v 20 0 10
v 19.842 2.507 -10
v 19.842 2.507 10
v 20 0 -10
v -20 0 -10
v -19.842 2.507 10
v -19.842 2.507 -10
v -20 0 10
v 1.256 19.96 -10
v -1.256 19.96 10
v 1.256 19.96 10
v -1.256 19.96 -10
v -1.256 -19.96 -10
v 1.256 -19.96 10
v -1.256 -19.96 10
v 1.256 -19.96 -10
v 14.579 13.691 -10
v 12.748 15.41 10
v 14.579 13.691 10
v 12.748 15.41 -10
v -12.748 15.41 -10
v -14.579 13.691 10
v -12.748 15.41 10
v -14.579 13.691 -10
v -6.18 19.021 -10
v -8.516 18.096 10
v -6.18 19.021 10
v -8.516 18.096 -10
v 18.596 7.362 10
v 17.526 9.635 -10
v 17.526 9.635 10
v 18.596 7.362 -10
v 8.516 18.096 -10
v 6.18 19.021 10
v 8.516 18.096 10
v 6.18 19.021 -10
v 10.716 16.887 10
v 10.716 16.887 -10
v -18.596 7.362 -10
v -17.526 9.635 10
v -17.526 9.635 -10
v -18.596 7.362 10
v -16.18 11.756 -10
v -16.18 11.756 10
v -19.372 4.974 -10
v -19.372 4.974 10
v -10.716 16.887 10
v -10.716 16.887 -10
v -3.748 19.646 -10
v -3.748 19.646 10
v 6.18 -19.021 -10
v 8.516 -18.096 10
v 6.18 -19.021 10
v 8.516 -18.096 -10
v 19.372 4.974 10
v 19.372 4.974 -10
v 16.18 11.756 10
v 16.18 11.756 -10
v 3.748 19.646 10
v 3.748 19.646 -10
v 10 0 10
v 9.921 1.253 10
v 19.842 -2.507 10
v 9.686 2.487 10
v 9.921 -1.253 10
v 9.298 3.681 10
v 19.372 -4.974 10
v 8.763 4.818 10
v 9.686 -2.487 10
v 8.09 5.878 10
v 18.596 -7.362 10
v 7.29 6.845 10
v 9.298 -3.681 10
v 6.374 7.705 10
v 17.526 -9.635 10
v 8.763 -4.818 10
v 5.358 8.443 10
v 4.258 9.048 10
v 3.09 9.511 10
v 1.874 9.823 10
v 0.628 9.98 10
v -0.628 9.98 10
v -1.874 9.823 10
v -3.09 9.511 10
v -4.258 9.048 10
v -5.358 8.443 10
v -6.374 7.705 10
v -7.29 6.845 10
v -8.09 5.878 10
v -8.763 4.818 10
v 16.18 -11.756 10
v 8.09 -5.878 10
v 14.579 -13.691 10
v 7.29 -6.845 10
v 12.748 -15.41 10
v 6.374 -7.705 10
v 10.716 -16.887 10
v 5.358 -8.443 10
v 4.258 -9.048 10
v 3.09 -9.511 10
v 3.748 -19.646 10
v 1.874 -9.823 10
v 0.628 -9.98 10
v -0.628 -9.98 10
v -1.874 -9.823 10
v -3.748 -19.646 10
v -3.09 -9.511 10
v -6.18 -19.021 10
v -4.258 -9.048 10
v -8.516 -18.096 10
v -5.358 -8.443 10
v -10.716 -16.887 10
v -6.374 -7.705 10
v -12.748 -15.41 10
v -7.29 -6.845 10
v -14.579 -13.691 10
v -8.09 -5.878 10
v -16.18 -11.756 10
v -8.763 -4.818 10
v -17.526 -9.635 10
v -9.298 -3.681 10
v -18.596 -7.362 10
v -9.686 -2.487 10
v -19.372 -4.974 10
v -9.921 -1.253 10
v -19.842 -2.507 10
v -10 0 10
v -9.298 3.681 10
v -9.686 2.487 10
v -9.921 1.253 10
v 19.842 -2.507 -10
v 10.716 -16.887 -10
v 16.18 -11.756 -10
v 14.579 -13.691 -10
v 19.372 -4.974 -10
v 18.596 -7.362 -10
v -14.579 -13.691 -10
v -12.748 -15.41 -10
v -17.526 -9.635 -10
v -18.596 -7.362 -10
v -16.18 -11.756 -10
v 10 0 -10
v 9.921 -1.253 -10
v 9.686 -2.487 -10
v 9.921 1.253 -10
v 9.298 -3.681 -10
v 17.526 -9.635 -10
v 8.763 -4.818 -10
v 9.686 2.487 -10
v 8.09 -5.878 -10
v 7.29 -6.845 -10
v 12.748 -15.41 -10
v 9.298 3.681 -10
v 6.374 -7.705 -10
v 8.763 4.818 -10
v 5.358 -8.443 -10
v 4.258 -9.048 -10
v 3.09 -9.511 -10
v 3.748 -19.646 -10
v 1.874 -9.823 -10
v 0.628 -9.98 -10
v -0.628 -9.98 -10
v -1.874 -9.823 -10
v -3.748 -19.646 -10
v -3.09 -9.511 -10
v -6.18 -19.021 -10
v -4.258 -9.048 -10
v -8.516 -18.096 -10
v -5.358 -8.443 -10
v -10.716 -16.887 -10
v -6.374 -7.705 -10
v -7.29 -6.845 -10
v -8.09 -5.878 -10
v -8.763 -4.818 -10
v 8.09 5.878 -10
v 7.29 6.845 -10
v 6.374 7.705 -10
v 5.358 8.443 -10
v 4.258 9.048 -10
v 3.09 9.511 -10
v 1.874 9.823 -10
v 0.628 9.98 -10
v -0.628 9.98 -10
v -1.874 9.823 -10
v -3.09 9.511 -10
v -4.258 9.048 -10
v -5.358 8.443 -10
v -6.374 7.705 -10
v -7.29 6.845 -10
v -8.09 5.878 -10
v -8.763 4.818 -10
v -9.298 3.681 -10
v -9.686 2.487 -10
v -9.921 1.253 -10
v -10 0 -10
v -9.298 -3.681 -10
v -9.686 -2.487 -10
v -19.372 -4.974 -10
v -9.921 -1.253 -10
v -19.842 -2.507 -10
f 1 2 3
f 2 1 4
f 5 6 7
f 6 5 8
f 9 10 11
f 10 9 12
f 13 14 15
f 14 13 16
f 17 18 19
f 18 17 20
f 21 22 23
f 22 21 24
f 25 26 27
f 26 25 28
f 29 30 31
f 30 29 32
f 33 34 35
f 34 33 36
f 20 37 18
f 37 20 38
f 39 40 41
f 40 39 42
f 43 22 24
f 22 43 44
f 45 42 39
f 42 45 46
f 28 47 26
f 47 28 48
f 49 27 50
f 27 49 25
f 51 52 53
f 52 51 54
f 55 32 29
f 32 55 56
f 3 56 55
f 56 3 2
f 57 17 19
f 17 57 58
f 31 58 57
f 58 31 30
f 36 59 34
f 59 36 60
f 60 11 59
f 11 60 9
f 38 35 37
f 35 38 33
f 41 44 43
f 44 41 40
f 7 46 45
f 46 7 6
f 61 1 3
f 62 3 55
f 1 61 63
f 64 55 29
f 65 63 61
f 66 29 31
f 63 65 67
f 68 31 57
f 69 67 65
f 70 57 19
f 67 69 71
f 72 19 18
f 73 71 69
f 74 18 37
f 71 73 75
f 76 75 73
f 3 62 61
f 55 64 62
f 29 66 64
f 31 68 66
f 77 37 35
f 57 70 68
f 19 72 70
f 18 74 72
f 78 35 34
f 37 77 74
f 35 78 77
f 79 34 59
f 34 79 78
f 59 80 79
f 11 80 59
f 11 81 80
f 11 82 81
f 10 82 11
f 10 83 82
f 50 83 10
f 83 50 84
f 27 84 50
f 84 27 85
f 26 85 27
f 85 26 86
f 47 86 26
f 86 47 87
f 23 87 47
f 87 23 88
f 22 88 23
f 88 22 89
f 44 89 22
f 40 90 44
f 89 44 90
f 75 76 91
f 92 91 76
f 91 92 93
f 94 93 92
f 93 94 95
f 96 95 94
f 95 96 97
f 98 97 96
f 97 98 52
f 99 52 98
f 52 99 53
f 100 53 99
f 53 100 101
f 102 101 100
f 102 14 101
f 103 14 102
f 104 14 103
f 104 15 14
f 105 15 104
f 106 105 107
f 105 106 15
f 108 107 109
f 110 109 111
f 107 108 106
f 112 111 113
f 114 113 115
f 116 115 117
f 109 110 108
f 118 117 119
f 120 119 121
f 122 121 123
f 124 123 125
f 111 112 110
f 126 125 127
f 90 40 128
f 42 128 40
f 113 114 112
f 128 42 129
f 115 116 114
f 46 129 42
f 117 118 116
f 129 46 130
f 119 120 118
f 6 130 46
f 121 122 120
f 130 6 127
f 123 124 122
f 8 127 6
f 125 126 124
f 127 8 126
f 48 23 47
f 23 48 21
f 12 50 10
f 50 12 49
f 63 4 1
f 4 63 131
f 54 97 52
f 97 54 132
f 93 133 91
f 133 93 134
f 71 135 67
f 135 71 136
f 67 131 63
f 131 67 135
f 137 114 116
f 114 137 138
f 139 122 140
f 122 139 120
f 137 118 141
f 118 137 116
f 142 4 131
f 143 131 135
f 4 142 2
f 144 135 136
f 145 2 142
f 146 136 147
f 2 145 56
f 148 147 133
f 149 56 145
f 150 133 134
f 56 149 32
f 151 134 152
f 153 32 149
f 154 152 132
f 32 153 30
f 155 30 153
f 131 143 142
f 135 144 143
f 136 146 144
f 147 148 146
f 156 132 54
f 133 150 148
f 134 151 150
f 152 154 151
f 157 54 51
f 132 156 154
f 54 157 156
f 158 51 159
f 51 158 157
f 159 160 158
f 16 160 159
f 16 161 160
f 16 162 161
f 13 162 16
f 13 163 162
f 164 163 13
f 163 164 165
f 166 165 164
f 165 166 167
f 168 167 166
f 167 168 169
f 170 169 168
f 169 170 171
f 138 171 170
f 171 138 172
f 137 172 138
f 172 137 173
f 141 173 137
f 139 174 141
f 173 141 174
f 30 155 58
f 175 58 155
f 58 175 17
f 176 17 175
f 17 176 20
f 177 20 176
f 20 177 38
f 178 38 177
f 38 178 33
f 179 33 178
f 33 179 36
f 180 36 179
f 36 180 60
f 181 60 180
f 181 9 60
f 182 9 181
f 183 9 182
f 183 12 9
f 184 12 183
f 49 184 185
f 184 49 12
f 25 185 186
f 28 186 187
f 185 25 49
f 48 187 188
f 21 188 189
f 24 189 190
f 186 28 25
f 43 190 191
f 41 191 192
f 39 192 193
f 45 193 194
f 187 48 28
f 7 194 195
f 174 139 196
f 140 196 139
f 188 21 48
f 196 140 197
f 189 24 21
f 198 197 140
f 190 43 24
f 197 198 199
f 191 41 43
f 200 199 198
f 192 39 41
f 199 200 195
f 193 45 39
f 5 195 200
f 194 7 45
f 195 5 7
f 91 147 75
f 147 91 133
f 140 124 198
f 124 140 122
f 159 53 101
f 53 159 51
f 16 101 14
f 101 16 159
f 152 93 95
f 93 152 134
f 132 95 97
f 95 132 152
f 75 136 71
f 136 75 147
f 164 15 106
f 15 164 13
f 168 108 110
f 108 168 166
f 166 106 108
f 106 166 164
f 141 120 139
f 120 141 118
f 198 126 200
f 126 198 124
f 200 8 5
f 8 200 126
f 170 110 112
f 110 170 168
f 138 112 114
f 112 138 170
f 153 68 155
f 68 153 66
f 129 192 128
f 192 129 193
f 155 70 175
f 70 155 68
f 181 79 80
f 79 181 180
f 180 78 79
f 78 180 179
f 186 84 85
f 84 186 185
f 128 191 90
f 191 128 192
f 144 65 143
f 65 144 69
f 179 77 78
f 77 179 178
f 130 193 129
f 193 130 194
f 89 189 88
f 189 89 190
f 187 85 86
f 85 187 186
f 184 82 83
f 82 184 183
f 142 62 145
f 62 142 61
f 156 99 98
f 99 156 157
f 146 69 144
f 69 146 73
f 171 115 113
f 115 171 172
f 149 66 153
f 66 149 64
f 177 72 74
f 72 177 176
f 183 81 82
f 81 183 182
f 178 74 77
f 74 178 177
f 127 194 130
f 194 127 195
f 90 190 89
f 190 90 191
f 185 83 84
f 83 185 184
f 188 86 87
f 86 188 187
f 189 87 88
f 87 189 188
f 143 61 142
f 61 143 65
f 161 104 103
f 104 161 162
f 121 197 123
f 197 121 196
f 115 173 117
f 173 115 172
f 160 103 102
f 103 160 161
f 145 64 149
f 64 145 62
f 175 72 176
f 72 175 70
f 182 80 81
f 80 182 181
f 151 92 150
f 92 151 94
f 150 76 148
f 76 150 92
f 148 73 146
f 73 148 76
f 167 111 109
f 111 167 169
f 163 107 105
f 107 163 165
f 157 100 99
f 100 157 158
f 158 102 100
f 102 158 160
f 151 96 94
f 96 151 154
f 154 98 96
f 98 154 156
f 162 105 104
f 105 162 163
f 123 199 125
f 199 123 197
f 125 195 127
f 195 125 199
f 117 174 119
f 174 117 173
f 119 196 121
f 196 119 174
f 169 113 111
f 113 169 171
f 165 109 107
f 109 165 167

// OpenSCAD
$fn = 50;


difference() {
	union() {
		translate(v = [0, 0, -10.0000000000]) {
			cylinder(h = 20, r = 20.0000000000);
		}
	}
	union() {
		translate(v = [0, 0, -100.0000000000]) {
			cylinder(h = 200, r = 10);
		}
	}
}
